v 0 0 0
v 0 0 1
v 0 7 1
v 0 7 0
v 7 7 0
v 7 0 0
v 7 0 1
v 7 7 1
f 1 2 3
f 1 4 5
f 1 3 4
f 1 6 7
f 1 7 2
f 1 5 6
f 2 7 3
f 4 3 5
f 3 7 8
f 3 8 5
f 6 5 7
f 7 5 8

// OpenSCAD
/* Warning, this is a very basic generator with a lot of approximation 
input data : [VQFN, SZB, 7x7x1.0mm, 48, , A, C04-21423A]
generated by com.zoubworld.electronics.cad.model3d.Basic
Date : Sun Feb 15 10:50:49 CET 2026
*/

//body
color("black")
translate([0,0,0])
cube([7.0,7.0,1.0], center=false);
